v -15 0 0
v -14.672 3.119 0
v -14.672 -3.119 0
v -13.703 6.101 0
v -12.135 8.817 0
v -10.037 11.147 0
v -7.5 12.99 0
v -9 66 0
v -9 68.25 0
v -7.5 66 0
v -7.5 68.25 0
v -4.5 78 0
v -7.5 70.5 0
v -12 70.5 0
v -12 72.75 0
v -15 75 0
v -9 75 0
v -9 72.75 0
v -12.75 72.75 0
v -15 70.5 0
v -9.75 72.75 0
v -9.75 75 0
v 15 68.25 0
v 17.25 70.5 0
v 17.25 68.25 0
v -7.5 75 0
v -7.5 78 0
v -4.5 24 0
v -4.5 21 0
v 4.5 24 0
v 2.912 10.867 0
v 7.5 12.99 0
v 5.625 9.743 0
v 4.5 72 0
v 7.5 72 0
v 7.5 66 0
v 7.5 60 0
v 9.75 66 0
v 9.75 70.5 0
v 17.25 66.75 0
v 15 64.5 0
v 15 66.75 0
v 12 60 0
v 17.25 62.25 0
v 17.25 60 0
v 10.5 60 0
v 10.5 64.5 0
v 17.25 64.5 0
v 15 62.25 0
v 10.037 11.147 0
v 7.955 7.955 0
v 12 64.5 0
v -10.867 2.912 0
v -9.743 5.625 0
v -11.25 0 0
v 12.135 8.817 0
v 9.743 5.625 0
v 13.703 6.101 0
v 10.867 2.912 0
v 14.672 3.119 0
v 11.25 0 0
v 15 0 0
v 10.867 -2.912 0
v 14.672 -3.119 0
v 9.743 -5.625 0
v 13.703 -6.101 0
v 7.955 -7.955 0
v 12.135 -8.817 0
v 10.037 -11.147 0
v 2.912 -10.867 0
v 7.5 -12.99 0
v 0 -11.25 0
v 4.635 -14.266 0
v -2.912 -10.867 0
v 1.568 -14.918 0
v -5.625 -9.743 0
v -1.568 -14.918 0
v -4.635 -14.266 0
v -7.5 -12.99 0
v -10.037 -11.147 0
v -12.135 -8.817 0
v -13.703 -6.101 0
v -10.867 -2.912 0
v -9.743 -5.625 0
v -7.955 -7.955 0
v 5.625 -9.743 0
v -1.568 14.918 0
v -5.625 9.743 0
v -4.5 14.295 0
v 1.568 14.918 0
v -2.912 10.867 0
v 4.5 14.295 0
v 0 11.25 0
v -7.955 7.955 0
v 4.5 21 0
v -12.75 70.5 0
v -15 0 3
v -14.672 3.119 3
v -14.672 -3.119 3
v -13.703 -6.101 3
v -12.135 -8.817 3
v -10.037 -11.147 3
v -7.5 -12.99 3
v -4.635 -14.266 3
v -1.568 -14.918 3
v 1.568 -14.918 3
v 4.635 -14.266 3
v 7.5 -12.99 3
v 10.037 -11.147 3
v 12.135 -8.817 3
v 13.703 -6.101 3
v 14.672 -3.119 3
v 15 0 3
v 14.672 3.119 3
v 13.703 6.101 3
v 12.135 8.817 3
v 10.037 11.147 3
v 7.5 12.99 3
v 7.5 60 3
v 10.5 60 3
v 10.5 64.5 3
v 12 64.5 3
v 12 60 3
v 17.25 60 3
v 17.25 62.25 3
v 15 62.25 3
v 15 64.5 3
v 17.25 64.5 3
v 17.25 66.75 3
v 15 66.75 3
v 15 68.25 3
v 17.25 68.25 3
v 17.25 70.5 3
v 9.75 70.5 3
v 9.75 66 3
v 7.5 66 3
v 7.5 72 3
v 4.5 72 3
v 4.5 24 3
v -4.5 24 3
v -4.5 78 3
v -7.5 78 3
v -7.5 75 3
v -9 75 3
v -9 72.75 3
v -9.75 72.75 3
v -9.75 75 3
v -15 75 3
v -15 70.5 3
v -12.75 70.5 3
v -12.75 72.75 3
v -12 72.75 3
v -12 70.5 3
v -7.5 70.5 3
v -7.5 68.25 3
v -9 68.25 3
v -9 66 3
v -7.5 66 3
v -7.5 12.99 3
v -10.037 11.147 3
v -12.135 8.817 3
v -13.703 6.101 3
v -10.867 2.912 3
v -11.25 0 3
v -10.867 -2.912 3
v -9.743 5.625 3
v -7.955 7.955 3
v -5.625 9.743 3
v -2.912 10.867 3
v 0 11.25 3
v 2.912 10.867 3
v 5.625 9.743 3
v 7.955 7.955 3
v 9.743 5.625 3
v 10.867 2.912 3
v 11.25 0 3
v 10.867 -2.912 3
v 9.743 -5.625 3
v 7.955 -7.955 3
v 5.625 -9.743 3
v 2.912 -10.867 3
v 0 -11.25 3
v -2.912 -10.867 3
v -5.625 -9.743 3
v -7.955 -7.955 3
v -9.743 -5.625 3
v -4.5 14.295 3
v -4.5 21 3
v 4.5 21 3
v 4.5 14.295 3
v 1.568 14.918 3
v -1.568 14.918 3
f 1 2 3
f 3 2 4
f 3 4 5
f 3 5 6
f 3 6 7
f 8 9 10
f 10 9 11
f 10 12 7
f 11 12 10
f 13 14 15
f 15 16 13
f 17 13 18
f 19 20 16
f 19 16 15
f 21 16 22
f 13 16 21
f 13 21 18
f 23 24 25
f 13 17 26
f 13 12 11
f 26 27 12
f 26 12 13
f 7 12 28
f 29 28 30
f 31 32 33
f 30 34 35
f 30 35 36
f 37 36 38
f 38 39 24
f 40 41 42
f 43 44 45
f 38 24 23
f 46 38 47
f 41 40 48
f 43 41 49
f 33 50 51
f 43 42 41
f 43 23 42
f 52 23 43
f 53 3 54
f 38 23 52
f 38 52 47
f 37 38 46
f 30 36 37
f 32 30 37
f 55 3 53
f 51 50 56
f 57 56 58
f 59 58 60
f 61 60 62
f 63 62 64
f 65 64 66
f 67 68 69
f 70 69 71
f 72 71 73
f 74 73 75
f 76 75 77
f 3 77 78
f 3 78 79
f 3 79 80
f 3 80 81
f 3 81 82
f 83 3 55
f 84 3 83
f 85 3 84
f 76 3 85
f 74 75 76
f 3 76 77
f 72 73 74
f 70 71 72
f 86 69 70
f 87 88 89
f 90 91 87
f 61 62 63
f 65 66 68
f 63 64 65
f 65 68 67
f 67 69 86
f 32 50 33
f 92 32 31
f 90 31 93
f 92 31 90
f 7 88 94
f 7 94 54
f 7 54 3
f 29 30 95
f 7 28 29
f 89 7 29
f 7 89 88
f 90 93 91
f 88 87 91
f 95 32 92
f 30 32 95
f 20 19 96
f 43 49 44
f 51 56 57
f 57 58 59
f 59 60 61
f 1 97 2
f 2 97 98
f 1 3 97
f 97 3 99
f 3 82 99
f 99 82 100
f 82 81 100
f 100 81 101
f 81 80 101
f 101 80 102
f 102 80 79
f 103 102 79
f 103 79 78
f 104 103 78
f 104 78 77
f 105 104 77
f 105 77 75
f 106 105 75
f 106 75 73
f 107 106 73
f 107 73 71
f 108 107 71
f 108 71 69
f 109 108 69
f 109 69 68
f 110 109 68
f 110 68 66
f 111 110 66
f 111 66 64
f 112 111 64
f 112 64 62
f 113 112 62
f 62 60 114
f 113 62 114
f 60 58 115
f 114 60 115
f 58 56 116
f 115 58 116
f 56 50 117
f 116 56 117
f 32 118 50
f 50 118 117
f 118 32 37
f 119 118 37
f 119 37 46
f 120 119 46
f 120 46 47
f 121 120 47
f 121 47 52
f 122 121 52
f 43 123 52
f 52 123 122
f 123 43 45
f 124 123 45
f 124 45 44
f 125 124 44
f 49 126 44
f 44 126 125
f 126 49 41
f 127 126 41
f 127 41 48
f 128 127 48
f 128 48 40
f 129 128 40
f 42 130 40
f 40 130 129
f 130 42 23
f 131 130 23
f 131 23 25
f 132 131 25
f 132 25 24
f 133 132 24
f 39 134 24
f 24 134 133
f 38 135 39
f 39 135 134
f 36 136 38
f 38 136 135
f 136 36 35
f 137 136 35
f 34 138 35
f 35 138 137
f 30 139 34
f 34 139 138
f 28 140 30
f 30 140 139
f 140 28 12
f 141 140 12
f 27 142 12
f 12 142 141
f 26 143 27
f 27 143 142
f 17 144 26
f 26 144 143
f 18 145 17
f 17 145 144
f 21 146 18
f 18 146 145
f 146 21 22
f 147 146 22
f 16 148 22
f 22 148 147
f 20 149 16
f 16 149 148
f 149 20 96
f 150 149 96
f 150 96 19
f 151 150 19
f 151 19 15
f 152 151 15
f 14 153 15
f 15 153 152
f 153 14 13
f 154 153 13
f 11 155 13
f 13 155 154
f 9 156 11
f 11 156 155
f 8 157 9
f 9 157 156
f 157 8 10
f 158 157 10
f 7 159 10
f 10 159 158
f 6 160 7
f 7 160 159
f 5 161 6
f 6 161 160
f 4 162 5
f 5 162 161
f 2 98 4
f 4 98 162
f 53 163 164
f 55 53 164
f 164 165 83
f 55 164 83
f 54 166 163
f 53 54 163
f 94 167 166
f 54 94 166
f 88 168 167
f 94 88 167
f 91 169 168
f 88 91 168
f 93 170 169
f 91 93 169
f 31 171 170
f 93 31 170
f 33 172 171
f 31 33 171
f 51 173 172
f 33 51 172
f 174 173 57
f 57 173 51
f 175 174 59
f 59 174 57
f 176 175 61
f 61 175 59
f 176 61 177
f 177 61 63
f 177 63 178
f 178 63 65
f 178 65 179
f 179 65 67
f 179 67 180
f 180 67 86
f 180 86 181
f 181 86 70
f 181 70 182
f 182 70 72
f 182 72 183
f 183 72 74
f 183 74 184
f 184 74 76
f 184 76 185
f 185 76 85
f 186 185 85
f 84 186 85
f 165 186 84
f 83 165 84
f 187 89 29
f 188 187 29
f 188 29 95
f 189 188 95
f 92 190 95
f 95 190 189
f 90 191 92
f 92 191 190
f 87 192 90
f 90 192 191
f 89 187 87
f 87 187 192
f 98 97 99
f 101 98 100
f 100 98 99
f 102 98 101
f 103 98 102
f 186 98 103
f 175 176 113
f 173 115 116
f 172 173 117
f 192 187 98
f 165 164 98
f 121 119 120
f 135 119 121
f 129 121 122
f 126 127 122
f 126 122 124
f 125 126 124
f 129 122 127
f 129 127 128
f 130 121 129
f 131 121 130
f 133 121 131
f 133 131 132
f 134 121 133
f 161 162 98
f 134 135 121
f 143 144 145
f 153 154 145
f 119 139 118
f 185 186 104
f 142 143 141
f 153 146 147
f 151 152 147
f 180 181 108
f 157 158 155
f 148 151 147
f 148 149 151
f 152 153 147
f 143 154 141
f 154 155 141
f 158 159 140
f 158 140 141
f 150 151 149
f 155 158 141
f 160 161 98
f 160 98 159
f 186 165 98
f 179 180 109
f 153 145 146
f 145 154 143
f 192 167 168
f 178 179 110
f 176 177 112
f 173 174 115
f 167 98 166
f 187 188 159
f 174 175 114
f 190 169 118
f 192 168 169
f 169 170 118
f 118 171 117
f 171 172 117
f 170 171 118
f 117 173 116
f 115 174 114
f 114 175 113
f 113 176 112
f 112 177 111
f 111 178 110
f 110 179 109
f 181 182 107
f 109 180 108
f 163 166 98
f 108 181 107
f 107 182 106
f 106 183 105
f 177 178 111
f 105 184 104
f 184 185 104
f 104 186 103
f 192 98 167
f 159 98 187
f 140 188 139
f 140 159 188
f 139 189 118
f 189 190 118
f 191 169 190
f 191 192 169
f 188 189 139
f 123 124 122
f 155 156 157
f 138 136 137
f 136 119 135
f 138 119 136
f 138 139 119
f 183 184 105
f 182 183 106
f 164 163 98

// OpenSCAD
scale(1.5)
union(){
difference(){
cylinder(h=2,r=10);
translate([0,0,-1])
cylinder(h=4,r=7.5);
}

translate([3,8,0])
cube([2,40,2]);
translate([-5,8,0])
cube([2,44,2]);
translate([-5,14,0])
cube([8,2,2]);
translate([-6,44,0])
cube([1.5,1.5,2]);
translate([-6,47,0])
cube([1.5,3,2]);
translate([-8,47,0])
cube([1.5,3,2]);
translate([-7,47,0])
cube([1.5,1.5,2]);
translate([-10,47,0])
cube([1.5,3,2]);
translate([-9,48.5,0])
cube([1.5,1.5,2]);
translate([5,40,0])
cube([2,4,2]);
translate([6.5,43,0])
cube([2,4,2]);
translate([8,40,0])
cube([2,7,2]);
translate([10,43,0])
cube([1.5,1.5,2]);
translate([10,45.5,0])
cube([1.5,1.5,2]);
translate([10,40,0])
cube([1.5,1.5,2]);
}
